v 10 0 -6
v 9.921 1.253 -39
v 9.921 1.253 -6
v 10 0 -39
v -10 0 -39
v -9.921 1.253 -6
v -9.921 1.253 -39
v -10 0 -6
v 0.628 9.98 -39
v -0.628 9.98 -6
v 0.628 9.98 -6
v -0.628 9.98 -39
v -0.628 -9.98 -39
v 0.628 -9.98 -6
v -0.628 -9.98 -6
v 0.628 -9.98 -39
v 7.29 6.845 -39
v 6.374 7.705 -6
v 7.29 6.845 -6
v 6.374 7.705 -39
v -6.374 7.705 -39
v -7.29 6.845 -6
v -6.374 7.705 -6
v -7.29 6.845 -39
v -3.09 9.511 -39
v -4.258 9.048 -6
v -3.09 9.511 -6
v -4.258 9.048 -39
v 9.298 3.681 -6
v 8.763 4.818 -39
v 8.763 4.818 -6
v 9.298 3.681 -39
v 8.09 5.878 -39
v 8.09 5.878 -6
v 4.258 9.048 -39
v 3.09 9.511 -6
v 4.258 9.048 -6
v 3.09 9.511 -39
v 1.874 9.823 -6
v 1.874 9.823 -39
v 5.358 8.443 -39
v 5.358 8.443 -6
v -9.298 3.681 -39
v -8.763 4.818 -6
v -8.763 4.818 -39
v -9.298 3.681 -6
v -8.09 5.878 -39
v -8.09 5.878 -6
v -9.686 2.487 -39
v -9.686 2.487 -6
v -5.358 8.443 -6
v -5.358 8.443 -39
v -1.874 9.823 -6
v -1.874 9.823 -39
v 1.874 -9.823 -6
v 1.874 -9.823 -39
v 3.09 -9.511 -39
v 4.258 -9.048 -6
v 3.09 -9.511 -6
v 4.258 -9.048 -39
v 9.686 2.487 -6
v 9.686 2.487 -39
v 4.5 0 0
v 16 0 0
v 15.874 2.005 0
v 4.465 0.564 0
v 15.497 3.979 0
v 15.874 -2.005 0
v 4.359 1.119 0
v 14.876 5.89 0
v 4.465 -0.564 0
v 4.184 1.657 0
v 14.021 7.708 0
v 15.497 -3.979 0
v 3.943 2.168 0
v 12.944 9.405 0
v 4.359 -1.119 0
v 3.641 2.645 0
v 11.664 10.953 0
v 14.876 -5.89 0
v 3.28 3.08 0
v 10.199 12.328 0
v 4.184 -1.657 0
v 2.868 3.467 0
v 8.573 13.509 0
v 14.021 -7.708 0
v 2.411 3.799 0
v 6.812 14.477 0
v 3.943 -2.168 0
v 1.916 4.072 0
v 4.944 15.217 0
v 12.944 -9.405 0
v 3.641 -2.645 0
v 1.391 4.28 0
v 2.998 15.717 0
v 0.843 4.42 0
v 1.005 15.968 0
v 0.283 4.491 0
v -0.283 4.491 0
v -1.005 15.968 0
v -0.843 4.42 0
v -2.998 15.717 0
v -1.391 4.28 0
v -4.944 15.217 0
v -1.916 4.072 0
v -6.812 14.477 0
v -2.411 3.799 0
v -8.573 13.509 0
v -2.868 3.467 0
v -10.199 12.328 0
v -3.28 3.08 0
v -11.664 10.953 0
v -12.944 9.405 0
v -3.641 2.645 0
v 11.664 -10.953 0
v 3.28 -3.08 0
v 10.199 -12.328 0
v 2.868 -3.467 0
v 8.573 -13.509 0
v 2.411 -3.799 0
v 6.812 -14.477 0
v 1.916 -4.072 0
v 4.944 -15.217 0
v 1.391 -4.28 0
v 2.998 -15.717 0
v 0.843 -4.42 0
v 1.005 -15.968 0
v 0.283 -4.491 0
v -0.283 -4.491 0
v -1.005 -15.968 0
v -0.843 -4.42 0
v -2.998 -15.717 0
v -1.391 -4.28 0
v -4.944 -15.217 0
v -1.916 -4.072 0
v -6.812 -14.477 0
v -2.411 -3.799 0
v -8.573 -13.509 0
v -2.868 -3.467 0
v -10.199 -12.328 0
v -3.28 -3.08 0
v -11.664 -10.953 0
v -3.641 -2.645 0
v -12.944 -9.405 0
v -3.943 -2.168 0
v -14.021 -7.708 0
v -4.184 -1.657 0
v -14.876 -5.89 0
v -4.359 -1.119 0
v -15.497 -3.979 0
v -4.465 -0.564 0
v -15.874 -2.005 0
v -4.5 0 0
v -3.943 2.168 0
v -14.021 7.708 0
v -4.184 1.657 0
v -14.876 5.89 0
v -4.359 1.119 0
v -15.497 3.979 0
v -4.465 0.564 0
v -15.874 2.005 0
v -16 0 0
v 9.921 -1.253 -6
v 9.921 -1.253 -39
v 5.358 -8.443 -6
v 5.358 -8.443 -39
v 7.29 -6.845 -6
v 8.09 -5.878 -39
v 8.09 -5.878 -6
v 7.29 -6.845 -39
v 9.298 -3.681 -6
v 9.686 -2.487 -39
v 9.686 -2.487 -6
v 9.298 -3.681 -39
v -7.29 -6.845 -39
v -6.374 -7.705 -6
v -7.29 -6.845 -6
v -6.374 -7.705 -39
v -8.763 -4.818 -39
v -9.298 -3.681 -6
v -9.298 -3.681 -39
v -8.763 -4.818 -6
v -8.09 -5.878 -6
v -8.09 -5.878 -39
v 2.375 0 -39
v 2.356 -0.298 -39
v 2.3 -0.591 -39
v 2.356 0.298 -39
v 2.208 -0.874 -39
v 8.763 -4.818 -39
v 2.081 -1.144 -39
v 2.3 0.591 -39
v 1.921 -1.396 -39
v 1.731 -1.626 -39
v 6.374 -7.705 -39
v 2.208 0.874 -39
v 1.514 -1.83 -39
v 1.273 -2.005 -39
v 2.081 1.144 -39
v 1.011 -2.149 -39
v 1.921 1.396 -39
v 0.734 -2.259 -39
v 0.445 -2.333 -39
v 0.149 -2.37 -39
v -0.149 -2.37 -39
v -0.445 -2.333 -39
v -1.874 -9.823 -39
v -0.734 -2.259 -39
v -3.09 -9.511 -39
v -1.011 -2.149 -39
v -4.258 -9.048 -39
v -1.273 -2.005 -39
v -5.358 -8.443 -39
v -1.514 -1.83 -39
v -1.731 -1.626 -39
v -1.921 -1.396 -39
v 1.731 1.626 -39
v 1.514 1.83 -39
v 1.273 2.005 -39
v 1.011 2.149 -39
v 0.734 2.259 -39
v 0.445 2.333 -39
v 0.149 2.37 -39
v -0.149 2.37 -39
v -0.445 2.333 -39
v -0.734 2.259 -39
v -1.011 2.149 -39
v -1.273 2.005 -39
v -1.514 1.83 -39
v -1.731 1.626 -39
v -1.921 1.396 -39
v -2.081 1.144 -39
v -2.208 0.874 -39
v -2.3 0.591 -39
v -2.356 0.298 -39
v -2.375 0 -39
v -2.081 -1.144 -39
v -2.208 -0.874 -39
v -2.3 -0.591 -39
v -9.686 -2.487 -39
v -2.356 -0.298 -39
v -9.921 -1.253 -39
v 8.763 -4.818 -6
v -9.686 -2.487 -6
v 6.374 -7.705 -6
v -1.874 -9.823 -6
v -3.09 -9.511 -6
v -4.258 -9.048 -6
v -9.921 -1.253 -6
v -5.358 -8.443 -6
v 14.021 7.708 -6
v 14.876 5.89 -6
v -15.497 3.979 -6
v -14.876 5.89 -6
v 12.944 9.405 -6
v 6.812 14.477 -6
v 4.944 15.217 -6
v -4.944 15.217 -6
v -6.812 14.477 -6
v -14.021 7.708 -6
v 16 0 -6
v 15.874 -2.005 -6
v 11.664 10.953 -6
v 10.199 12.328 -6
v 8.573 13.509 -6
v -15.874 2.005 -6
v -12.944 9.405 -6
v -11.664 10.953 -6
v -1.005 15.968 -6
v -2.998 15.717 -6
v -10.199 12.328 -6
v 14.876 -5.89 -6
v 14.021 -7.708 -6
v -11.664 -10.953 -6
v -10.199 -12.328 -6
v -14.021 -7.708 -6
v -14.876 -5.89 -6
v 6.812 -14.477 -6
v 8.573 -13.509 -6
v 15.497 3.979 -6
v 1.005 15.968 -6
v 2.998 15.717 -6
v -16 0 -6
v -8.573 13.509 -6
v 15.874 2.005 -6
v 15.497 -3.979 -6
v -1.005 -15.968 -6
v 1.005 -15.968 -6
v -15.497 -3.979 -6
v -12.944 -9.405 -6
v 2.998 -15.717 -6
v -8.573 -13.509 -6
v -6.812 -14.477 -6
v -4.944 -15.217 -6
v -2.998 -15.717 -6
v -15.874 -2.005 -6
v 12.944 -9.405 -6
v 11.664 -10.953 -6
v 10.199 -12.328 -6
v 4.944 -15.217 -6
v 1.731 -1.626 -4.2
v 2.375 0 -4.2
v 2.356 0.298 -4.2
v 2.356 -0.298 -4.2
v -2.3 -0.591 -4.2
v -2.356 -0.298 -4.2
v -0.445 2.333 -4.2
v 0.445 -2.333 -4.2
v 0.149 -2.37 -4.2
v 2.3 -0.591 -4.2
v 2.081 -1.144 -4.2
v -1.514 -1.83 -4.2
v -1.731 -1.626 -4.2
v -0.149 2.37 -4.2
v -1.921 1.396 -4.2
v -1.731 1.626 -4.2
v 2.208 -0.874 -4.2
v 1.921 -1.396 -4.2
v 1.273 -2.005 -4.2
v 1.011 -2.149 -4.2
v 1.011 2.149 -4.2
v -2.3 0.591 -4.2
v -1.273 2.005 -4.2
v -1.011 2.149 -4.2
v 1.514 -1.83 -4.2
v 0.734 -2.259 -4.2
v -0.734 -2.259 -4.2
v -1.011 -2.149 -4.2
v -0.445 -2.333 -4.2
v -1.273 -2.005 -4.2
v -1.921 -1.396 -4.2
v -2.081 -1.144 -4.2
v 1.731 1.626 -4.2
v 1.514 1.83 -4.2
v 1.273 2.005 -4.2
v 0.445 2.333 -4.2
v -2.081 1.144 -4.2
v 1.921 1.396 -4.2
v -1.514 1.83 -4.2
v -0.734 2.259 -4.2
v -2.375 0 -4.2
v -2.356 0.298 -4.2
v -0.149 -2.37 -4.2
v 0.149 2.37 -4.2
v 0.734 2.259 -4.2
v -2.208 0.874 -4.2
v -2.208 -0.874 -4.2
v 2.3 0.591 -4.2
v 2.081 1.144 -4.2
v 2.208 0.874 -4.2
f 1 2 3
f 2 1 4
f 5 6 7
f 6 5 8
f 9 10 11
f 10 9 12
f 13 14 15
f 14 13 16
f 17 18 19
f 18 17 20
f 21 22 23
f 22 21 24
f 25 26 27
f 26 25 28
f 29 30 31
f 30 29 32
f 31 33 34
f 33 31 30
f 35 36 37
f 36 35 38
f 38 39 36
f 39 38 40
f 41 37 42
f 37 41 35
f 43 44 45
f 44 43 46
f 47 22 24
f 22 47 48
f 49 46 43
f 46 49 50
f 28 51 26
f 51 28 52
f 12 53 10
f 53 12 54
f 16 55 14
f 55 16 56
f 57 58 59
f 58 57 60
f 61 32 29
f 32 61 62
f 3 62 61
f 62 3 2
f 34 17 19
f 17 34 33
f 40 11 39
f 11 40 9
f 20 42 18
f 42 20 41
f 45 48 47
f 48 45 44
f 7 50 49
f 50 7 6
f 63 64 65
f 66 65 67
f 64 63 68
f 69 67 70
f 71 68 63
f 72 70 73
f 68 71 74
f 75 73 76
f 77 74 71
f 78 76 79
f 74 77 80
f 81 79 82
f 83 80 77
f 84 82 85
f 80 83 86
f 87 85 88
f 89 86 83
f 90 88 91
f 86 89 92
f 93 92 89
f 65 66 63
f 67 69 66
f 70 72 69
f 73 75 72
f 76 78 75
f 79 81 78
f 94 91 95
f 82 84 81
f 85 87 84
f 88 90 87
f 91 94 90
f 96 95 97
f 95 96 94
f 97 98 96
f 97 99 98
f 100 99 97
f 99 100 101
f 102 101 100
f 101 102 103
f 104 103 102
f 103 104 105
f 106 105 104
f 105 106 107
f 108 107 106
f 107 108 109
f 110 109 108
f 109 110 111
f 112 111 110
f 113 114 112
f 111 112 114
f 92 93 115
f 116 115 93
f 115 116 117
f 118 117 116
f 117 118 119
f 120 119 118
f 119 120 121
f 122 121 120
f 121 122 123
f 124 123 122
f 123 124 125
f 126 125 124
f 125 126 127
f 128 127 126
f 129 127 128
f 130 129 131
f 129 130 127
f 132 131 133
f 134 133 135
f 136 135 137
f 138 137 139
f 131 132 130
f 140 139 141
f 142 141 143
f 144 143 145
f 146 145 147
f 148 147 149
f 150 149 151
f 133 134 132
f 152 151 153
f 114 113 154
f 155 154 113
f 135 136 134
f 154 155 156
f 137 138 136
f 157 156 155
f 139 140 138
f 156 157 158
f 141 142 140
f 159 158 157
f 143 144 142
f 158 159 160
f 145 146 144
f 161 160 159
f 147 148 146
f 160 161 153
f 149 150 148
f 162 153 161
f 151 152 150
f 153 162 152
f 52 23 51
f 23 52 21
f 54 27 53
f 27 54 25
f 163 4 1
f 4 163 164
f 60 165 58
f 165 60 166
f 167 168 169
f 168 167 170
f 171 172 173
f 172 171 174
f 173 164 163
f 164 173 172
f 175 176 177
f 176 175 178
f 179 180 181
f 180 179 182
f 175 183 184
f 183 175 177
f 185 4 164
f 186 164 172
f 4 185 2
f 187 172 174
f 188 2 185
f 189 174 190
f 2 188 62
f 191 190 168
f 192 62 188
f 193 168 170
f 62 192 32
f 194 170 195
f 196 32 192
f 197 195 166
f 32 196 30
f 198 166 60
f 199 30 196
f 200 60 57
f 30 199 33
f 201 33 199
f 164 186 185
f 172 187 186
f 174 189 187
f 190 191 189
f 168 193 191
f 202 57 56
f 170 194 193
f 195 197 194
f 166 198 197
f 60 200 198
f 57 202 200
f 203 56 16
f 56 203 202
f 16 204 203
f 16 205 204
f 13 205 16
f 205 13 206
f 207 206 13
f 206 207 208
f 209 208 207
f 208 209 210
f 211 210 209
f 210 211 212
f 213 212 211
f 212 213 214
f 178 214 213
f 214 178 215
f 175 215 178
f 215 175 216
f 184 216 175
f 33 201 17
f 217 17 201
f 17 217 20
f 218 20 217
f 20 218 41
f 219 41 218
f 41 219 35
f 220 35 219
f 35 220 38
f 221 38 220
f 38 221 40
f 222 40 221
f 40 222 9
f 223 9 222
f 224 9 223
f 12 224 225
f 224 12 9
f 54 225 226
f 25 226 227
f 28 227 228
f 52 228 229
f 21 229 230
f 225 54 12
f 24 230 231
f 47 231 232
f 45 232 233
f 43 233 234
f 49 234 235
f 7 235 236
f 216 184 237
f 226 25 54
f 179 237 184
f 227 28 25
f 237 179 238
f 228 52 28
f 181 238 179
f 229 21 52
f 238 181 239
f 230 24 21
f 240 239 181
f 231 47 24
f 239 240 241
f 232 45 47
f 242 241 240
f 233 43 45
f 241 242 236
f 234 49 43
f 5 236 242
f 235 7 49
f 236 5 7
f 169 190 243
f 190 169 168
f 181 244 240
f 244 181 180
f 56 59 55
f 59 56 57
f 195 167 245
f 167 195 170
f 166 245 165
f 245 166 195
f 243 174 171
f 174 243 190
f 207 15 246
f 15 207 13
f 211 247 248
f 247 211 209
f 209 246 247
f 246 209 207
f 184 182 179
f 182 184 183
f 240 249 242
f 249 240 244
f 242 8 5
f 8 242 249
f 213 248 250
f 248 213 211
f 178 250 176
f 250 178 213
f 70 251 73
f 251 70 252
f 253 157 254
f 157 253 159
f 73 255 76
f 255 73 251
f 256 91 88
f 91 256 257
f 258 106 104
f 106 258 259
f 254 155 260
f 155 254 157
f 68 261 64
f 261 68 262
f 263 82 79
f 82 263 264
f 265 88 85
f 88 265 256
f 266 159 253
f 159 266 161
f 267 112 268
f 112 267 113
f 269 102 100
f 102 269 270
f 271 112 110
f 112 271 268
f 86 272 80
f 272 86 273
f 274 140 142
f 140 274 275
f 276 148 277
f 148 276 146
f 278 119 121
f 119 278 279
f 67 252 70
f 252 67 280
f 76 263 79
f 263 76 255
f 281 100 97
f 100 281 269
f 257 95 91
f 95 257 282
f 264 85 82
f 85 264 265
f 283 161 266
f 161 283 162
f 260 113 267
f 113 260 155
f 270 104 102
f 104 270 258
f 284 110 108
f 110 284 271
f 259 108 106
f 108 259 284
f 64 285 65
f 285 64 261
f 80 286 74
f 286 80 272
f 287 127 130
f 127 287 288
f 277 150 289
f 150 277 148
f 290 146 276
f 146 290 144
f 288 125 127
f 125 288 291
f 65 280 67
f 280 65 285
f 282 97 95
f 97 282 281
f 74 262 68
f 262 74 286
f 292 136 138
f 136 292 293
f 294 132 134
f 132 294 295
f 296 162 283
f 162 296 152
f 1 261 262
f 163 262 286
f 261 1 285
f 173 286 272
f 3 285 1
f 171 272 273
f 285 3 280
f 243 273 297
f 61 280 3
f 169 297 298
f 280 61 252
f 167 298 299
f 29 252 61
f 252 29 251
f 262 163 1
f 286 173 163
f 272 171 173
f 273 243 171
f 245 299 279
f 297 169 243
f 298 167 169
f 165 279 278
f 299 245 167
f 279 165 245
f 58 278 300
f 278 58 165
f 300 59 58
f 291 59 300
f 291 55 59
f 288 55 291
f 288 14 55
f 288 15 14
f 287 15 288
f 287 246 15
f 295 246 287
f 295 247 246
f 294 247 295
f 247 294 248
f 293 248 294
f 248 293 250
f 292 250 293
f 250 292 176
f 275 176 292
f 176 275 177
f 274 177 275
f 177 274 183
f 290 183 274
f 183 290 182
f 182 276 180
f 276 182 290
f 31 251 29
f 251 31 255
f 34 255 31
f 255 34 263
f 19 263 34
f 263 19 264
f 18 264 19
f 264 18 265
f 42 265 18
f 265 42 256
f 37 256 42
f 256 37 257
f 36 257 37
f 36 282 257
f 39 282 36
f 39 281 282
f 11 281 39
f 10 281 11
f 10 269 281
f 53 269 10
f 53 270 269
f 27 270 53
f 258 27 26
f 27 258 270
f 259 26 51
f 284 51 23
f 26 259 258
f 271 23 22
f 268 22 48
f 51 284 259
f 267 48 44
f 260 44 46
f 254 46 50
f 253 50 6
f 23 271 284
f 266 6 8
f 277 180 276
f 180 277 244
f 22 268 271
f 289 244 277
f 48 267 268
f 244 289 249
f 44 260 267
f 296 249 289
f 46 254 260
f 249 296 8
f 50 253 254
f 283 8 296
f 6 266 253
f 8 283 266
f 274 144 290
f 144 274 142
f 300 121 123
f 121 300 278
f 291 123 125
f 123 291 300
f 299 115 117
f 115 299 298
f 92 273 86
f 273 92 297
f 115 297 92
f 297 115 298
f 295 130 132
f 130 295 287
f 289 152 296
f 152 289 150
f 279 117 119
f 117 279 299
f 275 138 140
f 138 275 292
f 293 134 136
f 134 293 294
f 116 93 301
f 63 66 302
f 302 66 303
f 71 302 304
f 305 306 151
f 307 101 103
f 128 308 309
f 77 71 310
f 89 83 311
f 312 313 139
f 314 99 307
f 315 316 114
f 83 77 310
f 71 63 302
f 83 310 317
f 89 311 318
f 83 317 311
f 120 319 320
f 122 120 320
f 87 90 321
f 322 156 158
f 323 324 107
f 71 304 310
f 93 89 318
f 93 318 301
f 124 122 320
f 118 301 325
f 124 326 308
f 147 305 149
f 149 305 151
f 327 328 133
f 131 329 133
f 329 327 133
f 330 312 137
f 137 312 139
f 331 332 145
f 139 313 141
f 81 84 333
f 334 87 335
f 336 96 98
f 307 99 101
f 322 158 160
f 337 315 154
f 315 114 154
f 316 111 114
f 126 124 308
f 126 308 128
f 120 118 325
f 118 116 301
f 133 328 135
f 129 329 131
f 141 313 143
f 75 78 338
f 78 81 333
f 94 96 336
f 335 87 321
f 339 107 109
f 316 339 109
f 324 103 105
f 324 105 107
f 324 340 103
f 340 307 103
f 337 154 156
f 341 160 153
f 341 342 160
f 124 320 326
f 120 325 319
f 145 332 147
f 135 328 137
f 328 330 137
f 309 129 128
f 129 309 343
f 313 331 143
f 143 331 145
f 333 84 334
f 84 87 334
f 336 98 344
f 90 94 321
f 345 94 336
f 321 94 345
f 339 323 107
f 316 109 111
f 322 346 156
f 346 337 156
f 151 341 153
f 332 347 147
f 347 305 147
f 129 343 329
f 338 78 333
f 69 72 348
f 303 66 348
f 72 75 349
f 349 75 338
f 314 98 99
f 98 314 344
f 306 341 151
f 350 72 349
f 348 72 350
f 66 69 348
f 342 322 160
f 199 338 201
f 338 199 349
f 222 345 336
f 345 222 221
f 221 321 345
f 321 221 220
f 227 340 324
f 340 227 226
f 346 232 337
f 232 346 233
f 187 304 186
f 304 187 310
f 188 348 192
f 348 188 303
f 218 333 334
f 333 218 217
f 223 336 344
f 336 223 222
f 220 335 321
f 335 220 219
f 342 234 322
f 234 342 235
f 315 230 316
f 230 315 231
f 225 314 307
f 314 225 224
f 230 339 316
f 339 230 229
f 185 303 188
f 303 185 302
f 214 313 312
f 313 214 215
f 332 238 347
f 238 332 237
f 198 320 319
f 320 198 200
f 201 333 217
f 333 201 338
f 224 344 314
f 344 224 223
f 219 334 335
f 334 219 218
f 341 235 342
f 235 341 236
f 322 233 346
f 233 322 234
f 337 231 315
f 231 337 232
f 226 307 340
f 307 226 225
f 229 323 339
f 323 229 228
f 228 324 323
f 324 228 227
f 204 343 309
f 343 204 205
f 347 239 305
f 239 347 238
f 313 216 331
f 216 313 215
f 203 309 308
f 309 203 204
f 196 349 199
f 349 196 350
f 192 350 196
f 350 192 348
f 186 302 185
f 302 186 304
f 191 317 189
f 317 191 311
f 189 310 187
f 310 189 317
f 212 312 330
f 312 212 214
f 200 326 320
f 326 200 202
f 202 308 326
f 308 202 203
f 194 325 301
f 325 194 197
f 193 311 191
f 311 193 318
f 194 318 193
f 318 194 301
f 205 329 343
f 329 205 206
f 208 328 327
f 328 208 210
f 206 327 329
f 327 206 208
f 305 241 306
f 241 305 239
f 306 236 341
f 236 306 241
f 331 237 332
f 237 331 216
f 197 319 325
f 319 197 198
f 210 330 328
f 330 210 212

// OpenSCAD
$fn = 50;


difference() {
	union() {
		translate(v = [0, 0, -39.0000000000]) {
			cylinder(h = 39, r = 10.0000000000);
		}
		translate(v = [0, 0, -6.0000000000]) {
			cylinder(h = 6, r = 16.0000000000);
		}
	}
	union() {
		translate(v = [0, 0, 0]) {
			rotate(a = [0, 0, 0]) {
				difference() {
					union() {
						#translate(v = [0, 0, -39.0000000000]) {
							cylinder(h = 39, r = 2.2500000000);
						}
						#translate(v = [0, 0, -4.2000000000]) {
							cylinder(h = 4.2000000000, r1 = 2.3750000000, r2 = 4.5000000000);
						}
						#translate(v = [0, 0, -39.0000000000]) {
							cylinder(h = 39, r = 2.3750000000);
						}
						#translate(v = [0, 0, -39.0000000000]) {
							cylinder(h = 39, r = 2.2500000000);
						}
					}
					union();
				}
			}
		}
	}
}
